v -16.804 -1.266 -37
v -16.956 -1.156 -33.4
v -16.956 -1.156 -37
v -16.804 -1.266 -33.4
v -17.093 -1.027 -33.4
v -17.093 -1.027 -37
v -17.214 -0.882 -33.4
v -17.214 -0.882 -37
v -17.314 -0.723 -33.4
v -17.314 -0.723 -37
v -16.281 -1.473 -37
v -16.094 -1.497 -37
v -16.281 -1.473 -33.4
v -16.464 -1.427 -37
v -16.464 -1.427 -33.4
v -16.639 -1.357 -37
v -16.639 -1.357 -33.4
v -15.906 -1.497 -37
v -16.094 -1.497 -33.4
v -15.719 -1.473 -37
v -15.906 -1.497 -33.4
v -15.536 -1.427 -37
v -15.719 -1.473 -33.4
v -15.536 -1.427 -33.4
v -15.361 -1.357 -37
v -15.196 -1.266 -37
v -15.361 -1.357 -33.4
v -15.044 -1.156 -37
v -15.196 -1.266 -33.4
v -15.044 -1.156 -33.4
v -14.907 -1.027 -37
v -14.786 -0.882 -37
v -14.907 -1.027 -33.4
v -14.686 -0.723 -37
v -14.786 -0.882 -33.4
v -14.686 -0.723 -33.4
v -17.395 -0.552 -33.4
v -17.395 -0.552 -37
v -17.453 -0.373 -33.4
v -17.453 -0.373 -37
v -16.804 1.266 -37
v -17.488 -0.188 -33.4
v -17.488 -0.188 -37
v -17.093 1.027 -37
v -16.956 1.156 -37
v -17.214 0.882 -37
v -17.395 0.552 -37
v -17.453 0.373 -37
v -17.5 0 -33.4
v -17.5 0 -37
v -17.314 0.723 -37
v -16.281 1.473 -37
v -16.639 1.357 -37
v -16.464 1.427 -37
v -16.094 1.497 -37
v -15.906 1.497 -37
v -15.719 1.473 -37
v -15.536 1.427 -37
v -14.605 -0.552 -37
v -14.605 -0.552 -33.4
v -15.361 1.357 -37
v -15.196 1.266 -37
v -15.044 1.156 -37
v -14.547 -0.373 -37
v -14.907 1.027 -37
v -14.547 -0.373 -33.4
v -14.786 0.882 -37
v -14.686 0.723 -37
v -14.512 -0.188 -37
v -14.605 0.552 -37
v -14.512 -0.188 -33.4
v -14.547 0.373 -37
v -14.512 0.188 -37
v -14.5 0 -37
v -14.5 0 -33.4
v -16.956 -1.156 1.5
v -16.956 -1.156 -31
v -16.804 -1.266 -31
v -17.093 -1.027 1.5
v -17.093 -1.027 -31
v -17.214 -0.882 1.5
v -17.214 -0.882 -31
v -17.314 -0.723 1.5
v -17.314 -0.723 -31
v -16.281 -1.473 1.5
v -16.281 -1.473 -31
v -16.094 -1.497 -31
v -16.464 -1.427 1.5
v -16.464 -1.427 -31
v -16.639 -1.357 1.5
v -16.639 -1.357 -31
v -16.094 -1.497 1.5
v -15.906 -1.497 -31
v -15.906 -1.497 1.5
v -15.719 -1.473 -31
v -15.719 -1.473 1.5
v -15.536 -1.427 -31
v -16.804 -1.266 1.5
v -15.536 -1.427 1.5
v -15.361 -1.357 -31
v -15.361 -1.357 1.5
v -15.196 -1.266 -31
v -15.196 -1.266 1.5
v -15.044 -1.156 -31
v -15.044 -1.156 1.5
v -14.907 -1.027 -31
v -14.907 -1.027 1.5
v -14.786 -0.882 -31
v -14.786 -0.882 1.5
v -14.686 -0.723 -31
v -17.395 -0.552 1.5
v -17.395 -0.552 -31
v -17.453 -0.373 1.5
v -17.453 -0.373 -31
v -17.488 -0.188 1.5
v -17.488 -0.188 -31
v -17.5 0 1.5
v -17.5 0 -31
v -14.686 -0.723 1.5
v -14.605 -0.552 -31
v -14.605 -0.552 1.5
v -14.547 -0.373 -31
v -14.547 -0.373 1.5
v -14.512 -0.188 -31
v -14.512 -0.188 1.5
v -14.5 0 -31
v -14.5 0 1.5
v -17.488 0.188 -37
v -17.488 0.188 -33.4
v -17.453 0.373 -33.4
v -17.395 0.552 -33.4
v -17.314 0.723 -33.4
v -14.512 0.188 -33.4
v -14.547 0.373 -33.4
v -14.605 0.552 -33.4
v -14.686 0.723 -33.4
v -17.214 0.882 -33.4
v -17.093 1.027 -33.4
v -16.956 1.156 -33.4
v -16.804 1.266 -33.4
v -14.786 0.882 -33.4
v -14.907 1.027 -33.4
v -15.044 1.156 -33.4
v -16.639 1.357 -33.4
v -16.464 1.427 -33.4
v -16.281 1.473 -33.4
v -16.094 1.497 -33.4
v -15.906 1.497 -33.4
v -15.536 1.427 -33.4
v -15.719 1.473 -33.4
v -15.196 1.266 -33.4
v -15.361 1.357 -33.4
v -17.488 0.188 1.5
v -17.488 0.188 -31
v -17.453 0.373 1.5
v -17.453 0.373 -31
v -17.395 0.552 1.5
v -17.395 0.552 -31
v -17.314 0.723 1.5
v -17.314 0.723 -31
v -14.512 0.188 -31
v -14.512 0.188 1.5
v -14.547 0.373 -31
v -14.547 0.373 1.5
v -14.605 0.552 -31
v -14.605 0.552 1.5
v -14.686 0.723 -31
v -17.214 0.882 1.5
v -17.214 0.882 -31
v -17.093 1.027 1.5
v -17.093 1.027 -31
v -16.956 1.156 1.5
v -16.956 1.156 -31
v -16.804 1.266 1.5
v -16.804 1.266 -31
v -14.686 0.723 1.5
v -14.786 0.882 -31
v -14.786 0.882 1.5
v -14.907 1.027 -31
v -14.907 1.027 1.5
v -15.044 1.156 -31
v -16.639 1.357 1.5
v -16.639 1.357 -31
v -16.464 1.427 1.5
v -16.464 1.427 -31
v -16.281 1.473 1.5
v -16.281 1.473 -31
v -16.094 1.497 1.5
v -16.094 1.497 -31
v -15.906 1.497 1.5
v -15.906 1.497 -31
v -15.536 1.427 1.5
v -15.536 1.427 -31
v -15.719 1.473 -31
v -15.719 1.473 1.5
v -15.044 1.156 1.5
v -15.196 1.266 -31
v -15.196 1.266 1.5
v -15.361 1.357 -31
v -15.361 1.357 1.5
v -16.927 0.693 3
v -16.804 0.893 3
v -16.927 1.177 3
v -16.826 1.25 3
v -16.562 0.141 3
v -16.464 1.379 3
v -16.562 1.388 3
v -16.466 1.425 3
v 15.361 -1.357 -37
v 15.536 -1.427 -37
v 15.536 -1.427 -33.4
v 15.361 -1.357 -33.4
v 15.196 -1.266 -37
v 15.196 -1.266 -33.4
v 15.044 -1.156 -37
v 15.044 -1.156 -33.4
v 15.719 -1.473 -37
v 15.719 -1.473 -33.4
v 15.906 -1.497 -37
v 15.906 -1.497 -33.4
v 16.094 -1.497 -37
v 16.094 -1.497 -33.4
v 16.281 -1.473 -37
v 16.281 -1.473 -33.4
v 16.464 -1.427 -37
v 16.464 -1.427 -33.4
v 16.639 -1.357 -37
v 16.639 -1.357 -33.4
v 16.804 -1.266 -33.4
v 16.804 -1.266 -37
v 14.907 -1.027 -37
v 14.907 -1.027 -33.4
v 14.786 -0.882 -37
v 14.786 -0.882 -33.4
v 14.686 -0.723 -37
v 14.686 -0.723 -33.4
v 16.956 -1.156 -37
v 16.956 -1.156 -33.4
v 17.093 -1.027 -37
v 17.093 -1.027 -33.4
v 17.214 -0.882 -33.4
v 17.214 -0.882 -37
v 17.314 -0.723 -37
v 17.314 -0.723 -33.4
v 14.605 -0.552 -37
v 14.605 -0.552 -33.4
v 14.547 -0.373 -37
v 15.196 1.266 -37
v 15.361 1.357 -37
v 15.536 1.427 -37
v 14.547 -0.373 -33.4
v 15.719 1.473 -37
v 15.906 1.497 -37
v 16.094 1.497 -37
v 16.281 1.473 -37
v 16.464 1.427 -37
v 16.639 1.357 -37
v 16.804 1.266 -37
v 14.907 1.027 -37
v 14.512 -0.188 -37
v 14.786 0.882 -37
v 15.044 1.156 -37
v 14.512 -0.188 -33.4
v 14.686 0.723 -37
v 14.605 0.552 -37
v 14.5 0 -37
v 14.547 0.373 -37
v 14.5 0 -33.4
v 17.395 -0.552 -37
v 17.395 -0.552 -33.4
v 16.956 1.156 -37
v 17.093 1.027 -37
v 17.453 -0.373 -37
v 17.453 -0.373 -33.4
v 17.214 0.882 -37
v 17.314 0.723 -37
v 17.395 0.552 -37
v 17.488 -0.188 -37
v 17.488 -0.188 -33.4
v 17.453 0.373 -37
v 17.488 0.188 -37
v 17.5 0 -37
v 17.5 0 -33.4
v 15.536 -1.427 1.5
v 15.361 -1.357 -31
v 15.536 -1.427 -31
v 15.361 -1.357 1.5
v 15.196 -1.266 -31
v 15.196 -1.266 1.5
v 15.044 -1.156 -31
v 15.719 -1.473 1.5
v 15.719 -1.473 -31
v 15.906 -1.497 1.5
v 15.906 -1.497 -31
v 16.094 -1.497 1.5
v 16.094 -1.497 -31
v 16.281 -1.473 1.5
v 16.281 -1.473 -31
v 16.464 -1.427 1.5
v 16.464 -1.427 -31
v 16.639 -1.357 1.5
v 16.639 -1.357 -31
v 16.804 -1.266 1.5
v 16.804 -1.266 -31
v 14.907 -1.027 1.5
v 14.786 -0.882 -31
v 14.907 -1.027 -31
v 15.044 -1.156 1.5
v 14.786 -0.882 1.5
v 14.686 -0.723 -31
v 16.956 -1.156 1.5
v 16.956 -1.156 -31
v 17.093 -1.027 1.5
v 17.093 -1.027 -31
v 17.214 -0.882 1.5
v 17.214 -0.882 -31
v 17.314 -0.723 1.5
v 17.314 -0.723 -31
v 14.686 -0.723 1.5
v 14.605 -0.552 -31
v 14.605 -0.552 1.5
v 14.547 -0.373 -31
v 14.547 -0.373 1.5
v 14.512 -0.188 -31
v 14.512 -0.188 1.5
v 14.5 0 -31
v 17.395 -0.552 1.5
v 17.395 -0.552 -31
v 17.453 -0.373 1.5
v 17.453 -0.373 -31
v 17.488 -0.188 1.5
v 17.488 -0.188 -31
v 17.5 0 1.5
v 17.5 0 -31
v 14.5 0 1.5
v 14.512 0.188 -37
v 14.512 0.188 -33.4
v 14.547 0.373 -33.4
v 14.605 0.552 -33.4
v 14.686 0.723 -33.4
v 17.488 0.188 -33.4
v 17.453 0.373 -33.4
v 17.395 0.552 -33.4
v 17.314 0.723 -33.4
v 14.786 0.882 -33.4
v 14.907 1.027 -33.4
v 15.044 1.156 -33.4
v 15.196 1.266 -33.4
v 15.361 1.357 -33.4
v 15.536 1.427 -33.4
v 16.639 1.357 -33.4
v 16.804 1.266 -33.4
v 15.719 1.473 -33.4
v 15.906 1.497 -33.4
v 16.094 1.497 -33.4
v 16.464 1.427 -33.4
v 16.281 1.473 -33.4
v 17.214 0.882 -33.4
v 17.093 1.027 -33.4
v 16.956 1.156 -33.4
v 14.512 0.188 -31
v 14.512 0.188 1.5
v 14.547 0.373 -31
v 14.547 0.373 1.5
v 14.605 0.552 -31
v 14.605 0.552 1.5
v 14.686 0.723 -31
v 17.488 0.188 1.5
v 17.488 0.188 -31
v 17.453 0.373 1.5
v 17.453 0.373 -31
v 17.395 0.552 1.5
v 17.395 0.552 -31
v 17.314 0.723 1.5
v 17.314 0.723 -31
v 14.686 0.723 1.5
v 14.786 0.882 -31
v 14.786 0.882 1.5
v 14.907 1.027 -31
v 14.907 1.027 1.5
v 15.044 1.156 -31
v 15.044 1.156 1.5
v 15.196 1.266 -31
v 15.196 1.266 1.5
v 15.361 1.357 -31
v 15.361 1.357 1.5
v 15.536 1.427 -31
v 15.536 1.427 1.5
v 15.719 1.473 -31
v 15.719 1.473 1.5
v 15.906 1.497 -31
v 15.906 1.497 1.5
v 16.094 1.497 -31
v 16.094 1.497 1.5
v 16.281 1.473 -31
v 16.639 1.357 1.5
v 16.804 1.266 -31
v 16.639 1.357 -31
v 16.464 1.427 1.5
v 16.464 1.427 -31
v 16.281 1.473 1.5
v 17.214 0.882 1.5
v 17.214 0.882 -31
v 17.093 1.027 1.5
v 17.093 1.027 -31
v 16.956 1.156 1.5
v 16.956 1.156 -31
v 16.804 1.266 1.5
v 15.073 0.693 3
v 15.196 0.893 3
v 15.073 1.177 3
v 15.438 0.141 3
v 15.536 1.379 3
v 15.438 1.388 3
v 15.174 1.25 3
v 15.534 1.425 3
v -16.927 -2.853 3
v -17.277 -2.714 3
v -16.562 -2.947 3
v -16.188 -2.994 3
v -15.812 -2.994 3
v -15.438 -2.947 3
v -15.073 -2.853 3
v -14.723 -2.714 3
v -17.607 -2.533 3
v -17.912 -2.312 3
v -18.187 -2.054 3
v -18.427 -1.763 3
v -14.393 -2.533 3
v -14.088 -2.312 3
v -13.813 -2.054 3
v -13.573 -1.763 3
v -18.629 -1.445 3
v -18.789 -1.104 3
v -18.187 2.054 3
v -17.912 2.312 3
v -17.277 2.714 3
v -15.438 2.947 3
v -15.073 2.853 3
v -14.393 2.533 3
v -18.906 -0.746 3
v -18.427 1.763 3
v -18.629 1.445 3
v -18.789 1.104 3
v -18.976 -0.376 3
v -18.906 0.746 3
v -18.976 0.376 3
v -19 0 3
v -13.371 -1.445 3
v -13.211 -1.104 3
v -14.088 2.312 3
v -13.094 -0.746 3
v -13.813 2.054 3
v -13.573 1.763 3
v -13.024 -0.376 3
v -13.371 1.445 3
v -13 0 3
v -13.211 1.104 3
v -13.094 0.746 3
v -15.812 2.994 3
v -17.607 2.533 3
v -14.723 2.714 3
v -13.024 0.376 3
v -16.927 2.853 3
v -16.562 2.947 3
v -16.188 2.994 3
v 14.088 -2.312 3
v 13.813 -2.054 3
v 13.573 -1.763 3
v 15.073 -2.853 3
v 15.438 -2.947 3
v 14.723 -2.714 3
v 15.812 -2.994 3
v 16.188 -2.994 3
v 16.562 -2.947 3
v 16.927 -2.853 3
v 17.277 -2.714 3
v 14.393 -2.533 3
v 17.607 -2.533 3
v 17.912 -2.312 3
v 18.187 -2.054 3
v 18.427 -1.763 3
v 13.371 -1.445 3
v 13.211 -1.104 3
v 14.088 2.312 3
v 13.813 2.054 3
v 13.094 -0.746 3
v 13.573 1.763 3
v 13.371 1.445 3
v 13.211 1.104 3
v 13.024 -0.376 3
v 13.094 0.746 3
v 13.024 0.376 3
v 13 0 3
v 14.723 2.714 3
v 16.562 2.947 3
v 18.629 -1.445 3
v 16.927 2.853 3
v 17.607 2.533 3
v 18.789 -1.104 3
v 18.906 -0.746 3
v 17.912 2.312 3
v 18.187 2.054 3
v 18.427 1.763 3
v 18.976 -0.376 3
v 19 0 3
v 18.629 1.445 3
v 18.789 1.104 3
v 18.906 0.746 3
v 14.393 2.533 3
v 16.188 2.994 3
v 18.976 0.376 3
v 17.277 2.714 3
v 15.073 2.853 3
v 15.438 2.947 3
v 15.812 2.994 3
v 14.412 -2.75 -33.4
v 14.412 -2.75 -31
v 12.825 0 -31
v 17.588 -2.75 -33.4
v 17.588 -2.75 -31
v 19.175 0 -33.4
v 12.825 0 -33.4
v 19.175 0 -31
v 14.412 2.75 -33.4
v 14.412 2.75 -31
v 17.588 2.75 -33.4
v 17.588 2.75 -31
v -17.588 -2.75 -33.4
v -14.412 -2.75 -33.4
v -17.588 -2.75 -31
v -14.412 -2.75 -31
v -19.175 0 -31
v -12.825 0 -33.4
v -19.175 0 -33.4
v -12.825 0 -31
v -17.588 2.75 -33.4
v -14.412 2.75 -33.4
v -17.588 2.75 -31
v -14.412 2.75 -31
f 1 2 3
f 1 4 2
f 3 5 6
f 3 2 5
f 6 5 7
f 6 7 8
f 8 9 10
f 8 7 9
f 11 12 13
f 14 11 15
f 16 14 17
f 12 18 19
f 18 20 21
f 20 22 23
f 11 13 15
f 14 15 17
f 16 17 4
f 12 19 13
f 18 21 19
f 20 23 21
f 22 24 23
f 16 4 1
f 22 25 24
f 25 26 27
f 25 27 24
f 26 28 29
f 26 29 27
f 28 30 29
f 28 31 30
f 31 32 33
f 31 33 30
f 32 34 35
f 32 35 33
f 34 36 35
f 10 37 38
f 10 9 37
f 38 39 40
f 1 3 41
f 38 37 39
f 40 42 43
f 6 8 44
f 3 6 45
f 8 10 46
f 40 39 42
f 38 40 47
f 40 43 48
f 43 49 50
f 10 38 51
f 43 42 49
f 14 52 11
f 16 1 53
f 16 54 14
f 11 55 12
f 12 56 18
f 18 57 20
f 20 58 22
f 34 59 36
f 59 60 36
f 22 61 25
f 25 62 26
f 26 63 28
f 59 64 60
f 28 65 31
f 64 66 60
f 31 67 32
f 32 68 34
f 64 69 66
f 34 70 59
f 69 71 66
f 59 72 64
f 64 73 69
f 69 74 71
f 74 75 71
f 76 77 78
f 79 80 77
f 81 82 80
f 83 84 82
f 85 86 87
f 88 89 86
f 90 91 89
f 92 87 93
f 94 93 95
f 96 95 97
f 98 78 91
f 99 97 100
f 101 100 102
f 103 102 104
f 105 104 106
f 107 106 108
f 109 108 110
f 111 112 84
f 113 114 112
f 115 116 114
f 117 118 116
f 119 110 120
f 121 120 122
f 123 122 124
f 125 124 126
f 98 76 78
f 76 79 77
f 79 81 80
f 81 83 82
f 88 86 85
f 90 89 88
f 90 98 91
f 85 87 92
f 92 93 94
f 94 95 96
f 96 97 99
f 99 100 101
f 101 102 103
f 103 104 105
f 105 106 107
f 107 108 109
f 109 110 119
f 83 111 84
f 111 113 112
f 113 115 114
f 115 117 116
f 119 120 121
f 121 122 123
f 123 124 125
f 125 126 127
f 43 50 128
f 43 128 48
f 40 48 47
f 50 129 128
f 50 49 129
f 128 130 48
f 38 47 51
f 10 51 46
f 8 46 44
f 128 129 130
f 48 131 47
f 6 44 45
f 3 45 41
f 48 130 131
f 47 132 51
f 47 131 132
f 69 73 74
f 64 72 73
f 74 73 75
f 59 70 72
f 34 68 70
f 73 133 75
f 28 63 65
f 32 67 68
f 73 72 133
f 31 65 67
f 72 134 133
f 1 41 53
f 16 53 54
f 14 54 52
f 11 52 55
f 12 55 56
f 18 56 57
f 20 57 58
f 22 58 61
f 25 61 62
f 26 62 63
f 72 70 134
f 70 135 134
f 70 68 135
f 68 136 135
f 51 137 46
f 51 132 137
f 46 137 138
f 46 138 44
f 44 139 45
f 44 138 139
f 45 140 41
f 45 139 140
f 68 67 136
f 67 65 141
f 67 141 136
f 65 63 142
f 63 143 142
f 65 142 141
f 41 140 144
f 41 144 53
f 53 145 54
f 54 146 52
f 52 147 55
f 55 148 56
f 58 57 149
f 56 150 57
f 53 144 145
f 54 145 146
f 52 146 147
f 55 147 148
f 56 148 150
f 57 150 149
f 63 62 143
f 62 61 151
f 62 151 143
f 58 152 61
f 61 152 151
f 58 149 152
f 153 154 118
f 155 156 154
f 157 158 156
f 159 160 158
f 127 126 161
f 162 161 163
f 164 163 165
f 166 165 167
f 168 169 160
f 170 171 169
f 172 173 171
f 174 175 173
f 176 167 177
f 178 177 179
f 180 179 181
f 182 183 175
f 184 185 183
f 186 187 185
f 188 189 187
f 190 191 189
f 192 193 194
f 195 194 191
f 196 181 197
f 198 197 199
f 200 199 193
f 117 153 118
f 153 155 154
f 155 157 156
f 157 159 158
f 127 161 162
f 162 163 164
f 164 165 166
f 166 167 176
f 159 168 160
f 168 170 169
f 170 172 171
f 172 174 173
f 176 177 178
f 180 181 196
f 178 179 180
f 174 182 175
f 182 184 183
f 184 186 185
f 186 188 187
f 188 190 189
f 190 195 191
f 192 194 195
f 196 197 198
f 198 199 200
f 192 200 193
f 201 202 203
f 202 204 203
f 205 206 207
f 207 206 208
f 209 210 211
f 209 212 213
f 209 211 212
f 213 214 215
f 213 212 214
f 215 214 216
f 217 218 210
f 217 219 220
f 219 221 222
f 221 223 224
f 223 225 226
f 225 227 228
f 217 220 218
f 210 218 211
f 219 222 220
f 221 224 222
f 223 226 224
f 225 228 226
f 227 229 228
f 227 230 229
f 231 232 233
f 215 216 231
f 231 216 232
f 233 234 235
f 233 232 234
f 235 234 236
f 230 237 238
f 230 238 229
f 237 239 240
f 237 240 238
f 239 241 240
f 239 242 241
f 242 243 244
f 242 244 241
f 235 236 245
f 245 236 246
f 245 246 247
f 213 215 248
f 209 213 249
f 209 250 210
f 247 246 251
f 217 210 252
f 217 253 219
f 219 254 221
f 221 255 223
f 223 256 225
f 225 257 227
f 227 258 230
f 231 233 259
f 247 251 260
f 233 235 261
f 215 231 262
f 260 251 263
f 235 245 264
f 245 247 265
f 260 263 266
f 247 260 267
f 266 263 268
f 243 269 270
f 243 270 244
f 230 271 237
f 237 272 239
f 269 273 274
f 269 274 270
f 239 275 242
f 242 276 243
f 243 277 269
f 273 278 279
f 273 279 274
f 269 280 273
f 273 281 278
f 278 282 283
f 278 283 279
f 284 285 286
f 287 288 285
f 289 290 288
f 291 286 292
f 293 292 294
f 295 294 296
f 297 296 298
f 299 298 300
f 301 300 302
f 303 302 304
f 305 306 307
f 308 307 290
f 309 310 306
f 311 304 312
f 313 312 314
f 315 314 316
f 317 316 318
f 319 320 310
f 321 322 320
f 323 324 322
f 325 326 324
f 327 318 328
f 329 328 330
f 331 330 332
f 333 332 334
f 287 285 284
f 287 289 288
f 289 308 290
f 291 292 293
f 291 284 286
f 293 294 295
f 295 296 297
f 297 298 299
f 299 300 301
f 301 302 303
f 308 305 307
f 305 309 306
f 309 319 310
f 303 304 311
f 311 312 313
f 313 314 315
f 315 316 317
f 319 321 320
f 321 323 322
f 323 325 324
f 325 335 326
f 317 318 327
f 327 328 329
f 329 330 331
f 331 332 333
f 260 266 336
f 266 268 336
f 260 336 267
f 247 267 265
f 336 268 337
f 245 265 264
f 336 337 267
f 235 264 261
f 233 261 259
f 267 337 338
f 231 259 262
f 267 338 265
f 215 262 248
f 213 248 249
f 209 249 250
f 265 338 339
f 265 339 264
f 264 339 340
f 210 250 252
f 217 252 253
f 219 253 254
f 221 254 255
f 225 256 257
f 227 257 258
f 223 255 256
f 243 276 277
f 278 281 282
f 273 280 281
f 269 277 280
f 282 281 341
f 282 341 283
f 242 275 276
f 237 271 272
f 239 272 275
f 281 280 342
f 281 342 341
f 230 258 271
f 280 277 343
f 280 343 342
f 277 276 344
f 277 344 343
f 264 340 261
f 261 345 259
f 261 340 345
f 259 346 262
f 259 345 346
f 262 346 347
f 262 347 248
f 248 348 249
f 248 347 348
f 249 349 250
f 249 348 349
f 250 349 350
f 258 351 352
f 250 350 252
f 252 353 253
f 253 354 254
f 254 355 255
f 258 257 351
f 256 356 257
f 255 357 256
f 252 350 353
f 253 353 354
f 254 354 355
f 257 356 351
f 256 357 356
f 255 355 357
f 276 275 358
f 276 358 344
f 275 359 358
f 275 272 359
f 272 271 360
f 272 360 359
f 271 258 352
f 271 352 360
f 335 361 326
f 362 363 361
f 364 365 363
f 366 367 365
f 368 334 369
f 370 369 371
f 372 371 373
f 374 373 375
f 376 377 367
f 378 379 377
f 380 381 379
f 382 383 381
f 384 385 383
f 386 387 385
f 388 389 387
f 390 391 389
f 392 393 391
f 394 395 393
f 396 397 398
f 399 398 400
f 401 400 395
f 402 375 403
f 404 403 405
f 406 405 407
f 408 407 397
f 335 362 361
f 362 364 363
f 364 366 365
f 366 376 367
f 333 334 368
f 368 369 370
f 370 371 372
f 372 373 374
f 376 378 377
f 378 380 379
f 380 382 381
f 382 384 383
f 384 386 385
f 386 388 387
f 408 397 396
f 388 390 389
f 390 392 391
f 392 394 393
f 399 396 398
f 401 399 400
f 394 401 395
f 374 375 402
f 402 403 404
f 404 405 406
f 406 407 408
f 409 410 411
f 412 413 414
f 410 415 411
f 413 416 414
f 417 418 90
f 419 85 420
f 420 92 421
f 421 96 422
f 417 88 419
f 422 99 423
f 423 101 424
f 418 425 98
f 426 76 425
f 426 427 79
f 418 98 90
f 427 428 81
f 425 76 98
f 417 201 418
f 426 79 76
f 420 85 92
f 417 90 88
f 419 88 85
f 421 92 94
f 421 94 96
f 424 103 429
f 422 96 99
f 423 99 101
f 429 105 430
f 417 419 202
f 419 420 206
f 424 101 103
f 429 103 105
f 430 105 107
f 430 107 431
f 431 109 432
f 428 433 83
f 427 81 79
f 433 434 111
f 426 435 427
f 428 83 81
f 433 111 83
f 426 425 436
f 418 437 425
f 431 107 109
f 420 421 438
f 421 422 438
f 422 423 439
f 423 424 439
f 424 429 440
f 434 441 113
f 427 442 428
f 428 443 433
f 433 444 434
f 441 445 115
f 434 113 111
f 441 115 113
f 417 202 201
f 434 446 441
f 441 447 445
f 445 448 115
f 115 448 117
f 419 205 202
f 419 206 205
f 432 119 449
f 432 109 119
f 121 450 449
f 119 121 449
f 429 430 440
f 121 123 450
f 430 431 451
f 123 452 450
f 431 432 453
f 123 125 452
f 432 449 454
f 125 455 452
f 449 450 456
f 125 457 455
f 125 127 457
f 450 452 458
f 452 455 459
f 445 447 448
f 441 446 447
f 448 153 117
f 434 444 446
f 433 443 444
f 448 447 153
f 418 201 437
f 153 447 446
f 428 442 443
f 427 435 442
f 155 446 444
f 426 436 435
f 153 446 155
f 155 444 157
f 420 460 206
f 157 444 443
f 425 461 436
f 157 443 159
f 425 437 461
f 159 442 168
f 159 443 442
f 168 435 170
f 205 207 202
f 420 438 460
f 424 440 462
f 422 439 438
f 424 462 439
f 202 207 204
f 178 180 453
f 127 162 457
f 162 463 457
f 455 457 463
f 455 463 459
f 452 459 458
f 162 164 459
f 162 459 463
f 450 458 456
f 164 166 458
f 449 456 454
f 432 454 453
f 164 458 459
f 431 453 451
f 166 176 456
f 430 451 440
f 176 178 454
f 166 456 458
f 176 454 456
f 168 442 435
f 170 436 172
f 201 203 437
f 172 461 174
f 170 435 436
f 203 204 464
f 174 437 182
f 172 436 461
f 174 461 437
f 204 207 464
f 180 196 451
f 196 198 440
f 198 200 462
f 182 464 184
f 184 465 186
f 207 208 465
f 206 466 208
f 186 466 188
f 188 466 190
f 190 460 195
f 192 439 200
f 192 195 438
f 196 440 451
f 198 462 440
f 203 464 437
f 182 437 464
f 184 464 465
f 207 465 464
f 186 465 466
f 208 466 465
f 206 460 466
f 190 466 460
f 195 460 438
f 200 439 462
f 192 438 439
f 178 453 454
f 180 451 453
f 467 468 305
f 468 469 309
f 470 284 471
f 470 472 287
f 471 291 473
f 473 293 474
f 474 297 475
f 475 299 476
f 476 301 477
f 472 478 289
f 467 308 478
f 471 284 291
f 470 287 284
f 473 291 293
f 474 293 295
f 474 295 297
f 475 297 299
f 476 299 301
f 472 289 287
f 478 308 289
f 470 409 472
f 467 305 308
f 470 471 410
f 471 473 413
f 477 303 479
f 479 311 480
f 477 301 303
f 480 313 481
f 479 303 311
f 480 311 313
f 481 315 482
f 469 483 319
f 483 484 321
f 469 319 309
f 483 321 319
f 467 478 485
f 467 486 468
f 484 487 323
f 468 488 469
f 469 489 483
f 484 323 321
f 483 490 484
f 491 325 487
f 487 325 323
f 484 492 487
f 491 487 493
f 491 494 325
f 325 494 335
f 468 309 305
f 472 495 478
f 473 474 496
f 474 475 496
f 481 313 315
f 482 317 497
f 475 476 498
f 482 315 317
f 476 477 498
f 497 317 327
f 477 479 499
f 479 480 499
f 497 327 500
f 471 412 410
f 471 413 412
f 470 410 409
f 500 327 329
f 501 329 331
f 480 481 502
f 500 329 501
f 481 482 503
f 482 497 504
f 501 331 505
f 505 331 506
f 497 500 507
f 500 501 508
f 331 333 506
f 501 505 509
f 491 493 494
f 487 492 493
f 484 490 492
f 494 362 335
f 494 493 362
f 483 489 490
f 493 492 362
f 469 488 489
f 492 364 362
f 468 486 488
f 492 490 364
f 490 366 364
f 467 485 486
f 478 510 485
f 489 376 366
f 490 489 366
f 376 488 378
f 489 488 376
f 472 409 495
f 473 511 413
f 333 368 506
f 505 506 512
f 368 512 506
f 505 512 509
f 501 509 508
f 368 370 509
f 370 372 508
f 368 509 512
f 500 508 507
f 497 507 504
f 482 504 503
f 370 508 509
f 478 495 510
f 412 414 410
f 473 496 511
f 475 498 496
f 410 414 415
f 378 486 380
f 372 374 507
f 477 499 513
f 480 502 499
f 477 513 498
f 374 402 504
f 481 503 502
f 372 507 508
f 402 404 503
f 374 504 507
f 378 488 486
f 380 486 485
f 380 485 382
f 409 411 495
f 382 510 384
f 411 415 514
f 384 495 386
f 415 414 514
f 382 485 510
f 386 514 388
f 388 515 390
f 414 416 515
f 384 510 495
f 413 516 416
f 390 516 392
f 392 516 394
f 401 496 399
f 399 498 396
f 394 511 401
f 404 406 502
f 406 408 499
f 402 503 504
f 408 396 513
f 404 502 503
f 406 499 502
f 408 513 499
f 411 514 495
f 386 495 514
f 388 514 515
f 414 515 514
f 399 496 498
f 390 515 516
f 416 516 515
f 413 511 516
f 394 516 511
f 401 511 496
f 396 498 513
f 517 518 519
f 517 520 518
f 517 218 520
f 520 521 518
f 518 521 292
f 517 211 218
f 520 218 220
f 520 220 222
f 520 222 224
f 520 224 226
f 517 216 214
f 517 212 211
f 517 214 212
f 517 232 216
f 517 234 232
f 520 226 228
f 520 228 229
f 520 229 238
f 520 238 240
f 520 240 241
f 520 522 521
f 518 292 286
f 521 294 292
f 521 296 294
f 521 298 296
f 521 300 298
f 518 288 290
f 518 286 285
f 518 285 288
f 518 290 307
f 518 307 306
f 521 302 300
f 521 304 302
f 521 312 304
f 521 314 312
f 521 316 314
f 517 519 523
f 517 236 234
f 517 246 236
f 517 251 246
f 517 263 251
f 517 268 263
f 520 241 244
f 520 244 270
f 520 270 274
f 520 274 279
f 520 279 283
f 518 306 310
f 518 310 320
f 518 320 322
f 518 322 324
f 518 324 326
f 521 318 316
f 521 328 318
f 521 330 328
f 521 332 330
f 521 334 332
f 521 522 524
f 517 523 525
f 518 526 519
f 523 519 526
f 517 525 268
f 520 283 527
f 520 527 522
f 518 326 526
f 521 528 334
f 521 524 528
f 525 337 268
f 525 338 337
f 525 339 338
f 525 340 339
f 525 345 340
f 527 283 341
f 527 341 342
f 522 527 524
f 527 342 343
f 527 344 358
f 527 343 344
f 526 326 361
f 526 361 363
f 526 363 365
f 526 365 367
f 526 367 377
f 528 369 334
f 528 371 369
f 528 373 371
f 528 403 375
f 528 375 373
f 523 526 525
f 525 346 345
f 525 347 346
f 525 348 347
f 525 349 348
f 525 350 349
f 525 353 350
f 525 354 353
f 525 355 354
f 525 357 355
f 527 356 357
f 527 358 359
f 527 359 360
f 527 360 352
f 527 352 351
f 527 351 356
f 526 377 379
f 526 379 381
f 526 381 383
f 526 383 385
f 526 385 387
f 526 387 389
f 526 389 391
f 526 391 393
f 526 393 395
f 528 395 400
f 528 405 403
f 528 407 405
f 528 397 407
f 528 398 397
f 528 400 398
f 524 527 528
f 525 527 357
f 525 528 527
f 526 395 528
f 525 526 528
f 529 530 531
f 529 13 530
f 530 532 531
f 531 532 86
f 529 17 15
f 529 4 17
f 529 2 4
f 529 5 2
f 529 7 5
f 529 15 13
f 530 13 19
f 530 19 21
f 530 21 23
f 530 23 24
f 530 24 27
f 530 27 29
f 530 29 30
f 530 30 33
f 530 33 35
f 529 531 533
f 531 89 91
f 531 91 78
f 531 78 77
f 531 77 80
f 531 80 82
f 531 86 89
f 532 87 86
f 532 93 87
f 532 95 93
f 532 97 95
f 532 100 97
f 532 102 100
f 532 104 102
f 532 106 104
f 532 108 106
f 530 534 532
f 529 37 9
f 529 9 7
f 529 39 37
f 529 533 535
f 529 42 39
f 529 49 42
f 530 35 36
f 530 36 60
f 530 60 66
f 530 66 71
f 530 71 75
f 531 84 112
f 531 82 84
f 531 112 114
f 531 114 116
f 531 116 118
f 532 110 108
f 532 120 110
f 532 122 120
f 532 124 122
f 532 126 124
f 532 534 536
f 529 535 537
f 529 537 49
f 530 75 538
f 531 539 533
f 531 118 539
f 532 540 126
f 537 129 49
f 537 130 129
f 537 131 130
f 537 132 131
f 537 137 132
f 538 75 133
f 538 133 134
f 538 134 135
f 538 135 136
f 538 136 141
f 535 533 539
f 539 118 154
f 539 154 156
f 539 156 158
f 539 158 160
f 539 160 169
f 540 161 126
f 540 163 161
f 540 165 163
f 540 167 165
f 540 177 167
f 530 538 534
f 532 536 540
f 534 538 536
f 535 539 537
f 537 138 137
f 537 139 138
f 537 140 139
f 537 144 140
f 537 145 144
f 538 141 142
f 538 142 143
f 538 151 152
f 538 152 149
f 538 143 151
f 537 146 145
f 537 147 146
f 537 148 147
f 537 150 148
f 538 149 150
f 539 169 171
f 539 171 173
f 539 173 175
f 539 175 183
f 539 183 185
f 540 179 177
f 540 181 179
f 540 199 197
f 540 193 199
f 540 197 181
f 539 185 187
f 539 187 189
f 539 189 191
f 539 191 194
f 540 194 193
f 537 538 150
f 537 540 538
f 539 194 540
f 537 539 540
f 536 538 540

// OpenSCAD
$fn = 50;

difference() {
	union() {
		translate(v = [-16, 0, 3]) {
			rotate(a = [0, 0, 0]) {
				difference() {
					union() {
						translate(v = [0, 0, -40.0]) {
							cylinder(h = 40, r = 1.5);
						}
						translate(v = [0, 0, -1.5]) {
							cylinder(h = 1.5, r1 = 1.5, r2 = 3);
						}
					}
					union();
				}
			}
		}
		translate(v = [-16, 0, -33.400000000000006]) {
			rotate(a = [0, 0, 0]) {
				difference() {
					union() {
						linear_extrude(height = 2.4) {
							polygon(points = [[3.1754264805429417, 0.0], [1.5877132402714713, 2.75], [-1.5877132402714702, 2.7500000000000004], [-3.1754264805429417, 3.888775875324659e-16], [-1.5877132402714722, -2.7499999999999996], [1.5877132402714687, -2.7500000000000013]]);
						}
					}
					union();
				}
			}
		}
		translate(v = [16, 0, 3]) {
			rotate(a = [0, 0, 0]) {
				difference() {
					union() {
						translate(v = [0, 0, -40.0]) {
							cylinder(h = 40, r = 1.5);
						}
						translate(v = [0, 0, -1.5]) {
							cylinder(h = 1.5, r1 = 1.5, r2 = 3);
						}
					}
					union();
				}
			}
		}
		translate(v = [16, 0, -33.400000000000006]) {
			rotate(a = [0, 0, 0]) {
				difference() {
					union() {
						linear_extrude(height = 2.4) {
							polygon(points = [[3.1754264805429417, 0.0], [1.5877132402714713, 2.75], [-1.5877132402714702, 2.7500000000000004], [-3.1754264805429417, 3.888775875324659e-16], [-1.5877132402714722, -2.7499999999999996], [1.5877132402714687, -2.7500000000000013]]);
						}
					}
					union();
				}
			}
		}
	}
	union();
}
